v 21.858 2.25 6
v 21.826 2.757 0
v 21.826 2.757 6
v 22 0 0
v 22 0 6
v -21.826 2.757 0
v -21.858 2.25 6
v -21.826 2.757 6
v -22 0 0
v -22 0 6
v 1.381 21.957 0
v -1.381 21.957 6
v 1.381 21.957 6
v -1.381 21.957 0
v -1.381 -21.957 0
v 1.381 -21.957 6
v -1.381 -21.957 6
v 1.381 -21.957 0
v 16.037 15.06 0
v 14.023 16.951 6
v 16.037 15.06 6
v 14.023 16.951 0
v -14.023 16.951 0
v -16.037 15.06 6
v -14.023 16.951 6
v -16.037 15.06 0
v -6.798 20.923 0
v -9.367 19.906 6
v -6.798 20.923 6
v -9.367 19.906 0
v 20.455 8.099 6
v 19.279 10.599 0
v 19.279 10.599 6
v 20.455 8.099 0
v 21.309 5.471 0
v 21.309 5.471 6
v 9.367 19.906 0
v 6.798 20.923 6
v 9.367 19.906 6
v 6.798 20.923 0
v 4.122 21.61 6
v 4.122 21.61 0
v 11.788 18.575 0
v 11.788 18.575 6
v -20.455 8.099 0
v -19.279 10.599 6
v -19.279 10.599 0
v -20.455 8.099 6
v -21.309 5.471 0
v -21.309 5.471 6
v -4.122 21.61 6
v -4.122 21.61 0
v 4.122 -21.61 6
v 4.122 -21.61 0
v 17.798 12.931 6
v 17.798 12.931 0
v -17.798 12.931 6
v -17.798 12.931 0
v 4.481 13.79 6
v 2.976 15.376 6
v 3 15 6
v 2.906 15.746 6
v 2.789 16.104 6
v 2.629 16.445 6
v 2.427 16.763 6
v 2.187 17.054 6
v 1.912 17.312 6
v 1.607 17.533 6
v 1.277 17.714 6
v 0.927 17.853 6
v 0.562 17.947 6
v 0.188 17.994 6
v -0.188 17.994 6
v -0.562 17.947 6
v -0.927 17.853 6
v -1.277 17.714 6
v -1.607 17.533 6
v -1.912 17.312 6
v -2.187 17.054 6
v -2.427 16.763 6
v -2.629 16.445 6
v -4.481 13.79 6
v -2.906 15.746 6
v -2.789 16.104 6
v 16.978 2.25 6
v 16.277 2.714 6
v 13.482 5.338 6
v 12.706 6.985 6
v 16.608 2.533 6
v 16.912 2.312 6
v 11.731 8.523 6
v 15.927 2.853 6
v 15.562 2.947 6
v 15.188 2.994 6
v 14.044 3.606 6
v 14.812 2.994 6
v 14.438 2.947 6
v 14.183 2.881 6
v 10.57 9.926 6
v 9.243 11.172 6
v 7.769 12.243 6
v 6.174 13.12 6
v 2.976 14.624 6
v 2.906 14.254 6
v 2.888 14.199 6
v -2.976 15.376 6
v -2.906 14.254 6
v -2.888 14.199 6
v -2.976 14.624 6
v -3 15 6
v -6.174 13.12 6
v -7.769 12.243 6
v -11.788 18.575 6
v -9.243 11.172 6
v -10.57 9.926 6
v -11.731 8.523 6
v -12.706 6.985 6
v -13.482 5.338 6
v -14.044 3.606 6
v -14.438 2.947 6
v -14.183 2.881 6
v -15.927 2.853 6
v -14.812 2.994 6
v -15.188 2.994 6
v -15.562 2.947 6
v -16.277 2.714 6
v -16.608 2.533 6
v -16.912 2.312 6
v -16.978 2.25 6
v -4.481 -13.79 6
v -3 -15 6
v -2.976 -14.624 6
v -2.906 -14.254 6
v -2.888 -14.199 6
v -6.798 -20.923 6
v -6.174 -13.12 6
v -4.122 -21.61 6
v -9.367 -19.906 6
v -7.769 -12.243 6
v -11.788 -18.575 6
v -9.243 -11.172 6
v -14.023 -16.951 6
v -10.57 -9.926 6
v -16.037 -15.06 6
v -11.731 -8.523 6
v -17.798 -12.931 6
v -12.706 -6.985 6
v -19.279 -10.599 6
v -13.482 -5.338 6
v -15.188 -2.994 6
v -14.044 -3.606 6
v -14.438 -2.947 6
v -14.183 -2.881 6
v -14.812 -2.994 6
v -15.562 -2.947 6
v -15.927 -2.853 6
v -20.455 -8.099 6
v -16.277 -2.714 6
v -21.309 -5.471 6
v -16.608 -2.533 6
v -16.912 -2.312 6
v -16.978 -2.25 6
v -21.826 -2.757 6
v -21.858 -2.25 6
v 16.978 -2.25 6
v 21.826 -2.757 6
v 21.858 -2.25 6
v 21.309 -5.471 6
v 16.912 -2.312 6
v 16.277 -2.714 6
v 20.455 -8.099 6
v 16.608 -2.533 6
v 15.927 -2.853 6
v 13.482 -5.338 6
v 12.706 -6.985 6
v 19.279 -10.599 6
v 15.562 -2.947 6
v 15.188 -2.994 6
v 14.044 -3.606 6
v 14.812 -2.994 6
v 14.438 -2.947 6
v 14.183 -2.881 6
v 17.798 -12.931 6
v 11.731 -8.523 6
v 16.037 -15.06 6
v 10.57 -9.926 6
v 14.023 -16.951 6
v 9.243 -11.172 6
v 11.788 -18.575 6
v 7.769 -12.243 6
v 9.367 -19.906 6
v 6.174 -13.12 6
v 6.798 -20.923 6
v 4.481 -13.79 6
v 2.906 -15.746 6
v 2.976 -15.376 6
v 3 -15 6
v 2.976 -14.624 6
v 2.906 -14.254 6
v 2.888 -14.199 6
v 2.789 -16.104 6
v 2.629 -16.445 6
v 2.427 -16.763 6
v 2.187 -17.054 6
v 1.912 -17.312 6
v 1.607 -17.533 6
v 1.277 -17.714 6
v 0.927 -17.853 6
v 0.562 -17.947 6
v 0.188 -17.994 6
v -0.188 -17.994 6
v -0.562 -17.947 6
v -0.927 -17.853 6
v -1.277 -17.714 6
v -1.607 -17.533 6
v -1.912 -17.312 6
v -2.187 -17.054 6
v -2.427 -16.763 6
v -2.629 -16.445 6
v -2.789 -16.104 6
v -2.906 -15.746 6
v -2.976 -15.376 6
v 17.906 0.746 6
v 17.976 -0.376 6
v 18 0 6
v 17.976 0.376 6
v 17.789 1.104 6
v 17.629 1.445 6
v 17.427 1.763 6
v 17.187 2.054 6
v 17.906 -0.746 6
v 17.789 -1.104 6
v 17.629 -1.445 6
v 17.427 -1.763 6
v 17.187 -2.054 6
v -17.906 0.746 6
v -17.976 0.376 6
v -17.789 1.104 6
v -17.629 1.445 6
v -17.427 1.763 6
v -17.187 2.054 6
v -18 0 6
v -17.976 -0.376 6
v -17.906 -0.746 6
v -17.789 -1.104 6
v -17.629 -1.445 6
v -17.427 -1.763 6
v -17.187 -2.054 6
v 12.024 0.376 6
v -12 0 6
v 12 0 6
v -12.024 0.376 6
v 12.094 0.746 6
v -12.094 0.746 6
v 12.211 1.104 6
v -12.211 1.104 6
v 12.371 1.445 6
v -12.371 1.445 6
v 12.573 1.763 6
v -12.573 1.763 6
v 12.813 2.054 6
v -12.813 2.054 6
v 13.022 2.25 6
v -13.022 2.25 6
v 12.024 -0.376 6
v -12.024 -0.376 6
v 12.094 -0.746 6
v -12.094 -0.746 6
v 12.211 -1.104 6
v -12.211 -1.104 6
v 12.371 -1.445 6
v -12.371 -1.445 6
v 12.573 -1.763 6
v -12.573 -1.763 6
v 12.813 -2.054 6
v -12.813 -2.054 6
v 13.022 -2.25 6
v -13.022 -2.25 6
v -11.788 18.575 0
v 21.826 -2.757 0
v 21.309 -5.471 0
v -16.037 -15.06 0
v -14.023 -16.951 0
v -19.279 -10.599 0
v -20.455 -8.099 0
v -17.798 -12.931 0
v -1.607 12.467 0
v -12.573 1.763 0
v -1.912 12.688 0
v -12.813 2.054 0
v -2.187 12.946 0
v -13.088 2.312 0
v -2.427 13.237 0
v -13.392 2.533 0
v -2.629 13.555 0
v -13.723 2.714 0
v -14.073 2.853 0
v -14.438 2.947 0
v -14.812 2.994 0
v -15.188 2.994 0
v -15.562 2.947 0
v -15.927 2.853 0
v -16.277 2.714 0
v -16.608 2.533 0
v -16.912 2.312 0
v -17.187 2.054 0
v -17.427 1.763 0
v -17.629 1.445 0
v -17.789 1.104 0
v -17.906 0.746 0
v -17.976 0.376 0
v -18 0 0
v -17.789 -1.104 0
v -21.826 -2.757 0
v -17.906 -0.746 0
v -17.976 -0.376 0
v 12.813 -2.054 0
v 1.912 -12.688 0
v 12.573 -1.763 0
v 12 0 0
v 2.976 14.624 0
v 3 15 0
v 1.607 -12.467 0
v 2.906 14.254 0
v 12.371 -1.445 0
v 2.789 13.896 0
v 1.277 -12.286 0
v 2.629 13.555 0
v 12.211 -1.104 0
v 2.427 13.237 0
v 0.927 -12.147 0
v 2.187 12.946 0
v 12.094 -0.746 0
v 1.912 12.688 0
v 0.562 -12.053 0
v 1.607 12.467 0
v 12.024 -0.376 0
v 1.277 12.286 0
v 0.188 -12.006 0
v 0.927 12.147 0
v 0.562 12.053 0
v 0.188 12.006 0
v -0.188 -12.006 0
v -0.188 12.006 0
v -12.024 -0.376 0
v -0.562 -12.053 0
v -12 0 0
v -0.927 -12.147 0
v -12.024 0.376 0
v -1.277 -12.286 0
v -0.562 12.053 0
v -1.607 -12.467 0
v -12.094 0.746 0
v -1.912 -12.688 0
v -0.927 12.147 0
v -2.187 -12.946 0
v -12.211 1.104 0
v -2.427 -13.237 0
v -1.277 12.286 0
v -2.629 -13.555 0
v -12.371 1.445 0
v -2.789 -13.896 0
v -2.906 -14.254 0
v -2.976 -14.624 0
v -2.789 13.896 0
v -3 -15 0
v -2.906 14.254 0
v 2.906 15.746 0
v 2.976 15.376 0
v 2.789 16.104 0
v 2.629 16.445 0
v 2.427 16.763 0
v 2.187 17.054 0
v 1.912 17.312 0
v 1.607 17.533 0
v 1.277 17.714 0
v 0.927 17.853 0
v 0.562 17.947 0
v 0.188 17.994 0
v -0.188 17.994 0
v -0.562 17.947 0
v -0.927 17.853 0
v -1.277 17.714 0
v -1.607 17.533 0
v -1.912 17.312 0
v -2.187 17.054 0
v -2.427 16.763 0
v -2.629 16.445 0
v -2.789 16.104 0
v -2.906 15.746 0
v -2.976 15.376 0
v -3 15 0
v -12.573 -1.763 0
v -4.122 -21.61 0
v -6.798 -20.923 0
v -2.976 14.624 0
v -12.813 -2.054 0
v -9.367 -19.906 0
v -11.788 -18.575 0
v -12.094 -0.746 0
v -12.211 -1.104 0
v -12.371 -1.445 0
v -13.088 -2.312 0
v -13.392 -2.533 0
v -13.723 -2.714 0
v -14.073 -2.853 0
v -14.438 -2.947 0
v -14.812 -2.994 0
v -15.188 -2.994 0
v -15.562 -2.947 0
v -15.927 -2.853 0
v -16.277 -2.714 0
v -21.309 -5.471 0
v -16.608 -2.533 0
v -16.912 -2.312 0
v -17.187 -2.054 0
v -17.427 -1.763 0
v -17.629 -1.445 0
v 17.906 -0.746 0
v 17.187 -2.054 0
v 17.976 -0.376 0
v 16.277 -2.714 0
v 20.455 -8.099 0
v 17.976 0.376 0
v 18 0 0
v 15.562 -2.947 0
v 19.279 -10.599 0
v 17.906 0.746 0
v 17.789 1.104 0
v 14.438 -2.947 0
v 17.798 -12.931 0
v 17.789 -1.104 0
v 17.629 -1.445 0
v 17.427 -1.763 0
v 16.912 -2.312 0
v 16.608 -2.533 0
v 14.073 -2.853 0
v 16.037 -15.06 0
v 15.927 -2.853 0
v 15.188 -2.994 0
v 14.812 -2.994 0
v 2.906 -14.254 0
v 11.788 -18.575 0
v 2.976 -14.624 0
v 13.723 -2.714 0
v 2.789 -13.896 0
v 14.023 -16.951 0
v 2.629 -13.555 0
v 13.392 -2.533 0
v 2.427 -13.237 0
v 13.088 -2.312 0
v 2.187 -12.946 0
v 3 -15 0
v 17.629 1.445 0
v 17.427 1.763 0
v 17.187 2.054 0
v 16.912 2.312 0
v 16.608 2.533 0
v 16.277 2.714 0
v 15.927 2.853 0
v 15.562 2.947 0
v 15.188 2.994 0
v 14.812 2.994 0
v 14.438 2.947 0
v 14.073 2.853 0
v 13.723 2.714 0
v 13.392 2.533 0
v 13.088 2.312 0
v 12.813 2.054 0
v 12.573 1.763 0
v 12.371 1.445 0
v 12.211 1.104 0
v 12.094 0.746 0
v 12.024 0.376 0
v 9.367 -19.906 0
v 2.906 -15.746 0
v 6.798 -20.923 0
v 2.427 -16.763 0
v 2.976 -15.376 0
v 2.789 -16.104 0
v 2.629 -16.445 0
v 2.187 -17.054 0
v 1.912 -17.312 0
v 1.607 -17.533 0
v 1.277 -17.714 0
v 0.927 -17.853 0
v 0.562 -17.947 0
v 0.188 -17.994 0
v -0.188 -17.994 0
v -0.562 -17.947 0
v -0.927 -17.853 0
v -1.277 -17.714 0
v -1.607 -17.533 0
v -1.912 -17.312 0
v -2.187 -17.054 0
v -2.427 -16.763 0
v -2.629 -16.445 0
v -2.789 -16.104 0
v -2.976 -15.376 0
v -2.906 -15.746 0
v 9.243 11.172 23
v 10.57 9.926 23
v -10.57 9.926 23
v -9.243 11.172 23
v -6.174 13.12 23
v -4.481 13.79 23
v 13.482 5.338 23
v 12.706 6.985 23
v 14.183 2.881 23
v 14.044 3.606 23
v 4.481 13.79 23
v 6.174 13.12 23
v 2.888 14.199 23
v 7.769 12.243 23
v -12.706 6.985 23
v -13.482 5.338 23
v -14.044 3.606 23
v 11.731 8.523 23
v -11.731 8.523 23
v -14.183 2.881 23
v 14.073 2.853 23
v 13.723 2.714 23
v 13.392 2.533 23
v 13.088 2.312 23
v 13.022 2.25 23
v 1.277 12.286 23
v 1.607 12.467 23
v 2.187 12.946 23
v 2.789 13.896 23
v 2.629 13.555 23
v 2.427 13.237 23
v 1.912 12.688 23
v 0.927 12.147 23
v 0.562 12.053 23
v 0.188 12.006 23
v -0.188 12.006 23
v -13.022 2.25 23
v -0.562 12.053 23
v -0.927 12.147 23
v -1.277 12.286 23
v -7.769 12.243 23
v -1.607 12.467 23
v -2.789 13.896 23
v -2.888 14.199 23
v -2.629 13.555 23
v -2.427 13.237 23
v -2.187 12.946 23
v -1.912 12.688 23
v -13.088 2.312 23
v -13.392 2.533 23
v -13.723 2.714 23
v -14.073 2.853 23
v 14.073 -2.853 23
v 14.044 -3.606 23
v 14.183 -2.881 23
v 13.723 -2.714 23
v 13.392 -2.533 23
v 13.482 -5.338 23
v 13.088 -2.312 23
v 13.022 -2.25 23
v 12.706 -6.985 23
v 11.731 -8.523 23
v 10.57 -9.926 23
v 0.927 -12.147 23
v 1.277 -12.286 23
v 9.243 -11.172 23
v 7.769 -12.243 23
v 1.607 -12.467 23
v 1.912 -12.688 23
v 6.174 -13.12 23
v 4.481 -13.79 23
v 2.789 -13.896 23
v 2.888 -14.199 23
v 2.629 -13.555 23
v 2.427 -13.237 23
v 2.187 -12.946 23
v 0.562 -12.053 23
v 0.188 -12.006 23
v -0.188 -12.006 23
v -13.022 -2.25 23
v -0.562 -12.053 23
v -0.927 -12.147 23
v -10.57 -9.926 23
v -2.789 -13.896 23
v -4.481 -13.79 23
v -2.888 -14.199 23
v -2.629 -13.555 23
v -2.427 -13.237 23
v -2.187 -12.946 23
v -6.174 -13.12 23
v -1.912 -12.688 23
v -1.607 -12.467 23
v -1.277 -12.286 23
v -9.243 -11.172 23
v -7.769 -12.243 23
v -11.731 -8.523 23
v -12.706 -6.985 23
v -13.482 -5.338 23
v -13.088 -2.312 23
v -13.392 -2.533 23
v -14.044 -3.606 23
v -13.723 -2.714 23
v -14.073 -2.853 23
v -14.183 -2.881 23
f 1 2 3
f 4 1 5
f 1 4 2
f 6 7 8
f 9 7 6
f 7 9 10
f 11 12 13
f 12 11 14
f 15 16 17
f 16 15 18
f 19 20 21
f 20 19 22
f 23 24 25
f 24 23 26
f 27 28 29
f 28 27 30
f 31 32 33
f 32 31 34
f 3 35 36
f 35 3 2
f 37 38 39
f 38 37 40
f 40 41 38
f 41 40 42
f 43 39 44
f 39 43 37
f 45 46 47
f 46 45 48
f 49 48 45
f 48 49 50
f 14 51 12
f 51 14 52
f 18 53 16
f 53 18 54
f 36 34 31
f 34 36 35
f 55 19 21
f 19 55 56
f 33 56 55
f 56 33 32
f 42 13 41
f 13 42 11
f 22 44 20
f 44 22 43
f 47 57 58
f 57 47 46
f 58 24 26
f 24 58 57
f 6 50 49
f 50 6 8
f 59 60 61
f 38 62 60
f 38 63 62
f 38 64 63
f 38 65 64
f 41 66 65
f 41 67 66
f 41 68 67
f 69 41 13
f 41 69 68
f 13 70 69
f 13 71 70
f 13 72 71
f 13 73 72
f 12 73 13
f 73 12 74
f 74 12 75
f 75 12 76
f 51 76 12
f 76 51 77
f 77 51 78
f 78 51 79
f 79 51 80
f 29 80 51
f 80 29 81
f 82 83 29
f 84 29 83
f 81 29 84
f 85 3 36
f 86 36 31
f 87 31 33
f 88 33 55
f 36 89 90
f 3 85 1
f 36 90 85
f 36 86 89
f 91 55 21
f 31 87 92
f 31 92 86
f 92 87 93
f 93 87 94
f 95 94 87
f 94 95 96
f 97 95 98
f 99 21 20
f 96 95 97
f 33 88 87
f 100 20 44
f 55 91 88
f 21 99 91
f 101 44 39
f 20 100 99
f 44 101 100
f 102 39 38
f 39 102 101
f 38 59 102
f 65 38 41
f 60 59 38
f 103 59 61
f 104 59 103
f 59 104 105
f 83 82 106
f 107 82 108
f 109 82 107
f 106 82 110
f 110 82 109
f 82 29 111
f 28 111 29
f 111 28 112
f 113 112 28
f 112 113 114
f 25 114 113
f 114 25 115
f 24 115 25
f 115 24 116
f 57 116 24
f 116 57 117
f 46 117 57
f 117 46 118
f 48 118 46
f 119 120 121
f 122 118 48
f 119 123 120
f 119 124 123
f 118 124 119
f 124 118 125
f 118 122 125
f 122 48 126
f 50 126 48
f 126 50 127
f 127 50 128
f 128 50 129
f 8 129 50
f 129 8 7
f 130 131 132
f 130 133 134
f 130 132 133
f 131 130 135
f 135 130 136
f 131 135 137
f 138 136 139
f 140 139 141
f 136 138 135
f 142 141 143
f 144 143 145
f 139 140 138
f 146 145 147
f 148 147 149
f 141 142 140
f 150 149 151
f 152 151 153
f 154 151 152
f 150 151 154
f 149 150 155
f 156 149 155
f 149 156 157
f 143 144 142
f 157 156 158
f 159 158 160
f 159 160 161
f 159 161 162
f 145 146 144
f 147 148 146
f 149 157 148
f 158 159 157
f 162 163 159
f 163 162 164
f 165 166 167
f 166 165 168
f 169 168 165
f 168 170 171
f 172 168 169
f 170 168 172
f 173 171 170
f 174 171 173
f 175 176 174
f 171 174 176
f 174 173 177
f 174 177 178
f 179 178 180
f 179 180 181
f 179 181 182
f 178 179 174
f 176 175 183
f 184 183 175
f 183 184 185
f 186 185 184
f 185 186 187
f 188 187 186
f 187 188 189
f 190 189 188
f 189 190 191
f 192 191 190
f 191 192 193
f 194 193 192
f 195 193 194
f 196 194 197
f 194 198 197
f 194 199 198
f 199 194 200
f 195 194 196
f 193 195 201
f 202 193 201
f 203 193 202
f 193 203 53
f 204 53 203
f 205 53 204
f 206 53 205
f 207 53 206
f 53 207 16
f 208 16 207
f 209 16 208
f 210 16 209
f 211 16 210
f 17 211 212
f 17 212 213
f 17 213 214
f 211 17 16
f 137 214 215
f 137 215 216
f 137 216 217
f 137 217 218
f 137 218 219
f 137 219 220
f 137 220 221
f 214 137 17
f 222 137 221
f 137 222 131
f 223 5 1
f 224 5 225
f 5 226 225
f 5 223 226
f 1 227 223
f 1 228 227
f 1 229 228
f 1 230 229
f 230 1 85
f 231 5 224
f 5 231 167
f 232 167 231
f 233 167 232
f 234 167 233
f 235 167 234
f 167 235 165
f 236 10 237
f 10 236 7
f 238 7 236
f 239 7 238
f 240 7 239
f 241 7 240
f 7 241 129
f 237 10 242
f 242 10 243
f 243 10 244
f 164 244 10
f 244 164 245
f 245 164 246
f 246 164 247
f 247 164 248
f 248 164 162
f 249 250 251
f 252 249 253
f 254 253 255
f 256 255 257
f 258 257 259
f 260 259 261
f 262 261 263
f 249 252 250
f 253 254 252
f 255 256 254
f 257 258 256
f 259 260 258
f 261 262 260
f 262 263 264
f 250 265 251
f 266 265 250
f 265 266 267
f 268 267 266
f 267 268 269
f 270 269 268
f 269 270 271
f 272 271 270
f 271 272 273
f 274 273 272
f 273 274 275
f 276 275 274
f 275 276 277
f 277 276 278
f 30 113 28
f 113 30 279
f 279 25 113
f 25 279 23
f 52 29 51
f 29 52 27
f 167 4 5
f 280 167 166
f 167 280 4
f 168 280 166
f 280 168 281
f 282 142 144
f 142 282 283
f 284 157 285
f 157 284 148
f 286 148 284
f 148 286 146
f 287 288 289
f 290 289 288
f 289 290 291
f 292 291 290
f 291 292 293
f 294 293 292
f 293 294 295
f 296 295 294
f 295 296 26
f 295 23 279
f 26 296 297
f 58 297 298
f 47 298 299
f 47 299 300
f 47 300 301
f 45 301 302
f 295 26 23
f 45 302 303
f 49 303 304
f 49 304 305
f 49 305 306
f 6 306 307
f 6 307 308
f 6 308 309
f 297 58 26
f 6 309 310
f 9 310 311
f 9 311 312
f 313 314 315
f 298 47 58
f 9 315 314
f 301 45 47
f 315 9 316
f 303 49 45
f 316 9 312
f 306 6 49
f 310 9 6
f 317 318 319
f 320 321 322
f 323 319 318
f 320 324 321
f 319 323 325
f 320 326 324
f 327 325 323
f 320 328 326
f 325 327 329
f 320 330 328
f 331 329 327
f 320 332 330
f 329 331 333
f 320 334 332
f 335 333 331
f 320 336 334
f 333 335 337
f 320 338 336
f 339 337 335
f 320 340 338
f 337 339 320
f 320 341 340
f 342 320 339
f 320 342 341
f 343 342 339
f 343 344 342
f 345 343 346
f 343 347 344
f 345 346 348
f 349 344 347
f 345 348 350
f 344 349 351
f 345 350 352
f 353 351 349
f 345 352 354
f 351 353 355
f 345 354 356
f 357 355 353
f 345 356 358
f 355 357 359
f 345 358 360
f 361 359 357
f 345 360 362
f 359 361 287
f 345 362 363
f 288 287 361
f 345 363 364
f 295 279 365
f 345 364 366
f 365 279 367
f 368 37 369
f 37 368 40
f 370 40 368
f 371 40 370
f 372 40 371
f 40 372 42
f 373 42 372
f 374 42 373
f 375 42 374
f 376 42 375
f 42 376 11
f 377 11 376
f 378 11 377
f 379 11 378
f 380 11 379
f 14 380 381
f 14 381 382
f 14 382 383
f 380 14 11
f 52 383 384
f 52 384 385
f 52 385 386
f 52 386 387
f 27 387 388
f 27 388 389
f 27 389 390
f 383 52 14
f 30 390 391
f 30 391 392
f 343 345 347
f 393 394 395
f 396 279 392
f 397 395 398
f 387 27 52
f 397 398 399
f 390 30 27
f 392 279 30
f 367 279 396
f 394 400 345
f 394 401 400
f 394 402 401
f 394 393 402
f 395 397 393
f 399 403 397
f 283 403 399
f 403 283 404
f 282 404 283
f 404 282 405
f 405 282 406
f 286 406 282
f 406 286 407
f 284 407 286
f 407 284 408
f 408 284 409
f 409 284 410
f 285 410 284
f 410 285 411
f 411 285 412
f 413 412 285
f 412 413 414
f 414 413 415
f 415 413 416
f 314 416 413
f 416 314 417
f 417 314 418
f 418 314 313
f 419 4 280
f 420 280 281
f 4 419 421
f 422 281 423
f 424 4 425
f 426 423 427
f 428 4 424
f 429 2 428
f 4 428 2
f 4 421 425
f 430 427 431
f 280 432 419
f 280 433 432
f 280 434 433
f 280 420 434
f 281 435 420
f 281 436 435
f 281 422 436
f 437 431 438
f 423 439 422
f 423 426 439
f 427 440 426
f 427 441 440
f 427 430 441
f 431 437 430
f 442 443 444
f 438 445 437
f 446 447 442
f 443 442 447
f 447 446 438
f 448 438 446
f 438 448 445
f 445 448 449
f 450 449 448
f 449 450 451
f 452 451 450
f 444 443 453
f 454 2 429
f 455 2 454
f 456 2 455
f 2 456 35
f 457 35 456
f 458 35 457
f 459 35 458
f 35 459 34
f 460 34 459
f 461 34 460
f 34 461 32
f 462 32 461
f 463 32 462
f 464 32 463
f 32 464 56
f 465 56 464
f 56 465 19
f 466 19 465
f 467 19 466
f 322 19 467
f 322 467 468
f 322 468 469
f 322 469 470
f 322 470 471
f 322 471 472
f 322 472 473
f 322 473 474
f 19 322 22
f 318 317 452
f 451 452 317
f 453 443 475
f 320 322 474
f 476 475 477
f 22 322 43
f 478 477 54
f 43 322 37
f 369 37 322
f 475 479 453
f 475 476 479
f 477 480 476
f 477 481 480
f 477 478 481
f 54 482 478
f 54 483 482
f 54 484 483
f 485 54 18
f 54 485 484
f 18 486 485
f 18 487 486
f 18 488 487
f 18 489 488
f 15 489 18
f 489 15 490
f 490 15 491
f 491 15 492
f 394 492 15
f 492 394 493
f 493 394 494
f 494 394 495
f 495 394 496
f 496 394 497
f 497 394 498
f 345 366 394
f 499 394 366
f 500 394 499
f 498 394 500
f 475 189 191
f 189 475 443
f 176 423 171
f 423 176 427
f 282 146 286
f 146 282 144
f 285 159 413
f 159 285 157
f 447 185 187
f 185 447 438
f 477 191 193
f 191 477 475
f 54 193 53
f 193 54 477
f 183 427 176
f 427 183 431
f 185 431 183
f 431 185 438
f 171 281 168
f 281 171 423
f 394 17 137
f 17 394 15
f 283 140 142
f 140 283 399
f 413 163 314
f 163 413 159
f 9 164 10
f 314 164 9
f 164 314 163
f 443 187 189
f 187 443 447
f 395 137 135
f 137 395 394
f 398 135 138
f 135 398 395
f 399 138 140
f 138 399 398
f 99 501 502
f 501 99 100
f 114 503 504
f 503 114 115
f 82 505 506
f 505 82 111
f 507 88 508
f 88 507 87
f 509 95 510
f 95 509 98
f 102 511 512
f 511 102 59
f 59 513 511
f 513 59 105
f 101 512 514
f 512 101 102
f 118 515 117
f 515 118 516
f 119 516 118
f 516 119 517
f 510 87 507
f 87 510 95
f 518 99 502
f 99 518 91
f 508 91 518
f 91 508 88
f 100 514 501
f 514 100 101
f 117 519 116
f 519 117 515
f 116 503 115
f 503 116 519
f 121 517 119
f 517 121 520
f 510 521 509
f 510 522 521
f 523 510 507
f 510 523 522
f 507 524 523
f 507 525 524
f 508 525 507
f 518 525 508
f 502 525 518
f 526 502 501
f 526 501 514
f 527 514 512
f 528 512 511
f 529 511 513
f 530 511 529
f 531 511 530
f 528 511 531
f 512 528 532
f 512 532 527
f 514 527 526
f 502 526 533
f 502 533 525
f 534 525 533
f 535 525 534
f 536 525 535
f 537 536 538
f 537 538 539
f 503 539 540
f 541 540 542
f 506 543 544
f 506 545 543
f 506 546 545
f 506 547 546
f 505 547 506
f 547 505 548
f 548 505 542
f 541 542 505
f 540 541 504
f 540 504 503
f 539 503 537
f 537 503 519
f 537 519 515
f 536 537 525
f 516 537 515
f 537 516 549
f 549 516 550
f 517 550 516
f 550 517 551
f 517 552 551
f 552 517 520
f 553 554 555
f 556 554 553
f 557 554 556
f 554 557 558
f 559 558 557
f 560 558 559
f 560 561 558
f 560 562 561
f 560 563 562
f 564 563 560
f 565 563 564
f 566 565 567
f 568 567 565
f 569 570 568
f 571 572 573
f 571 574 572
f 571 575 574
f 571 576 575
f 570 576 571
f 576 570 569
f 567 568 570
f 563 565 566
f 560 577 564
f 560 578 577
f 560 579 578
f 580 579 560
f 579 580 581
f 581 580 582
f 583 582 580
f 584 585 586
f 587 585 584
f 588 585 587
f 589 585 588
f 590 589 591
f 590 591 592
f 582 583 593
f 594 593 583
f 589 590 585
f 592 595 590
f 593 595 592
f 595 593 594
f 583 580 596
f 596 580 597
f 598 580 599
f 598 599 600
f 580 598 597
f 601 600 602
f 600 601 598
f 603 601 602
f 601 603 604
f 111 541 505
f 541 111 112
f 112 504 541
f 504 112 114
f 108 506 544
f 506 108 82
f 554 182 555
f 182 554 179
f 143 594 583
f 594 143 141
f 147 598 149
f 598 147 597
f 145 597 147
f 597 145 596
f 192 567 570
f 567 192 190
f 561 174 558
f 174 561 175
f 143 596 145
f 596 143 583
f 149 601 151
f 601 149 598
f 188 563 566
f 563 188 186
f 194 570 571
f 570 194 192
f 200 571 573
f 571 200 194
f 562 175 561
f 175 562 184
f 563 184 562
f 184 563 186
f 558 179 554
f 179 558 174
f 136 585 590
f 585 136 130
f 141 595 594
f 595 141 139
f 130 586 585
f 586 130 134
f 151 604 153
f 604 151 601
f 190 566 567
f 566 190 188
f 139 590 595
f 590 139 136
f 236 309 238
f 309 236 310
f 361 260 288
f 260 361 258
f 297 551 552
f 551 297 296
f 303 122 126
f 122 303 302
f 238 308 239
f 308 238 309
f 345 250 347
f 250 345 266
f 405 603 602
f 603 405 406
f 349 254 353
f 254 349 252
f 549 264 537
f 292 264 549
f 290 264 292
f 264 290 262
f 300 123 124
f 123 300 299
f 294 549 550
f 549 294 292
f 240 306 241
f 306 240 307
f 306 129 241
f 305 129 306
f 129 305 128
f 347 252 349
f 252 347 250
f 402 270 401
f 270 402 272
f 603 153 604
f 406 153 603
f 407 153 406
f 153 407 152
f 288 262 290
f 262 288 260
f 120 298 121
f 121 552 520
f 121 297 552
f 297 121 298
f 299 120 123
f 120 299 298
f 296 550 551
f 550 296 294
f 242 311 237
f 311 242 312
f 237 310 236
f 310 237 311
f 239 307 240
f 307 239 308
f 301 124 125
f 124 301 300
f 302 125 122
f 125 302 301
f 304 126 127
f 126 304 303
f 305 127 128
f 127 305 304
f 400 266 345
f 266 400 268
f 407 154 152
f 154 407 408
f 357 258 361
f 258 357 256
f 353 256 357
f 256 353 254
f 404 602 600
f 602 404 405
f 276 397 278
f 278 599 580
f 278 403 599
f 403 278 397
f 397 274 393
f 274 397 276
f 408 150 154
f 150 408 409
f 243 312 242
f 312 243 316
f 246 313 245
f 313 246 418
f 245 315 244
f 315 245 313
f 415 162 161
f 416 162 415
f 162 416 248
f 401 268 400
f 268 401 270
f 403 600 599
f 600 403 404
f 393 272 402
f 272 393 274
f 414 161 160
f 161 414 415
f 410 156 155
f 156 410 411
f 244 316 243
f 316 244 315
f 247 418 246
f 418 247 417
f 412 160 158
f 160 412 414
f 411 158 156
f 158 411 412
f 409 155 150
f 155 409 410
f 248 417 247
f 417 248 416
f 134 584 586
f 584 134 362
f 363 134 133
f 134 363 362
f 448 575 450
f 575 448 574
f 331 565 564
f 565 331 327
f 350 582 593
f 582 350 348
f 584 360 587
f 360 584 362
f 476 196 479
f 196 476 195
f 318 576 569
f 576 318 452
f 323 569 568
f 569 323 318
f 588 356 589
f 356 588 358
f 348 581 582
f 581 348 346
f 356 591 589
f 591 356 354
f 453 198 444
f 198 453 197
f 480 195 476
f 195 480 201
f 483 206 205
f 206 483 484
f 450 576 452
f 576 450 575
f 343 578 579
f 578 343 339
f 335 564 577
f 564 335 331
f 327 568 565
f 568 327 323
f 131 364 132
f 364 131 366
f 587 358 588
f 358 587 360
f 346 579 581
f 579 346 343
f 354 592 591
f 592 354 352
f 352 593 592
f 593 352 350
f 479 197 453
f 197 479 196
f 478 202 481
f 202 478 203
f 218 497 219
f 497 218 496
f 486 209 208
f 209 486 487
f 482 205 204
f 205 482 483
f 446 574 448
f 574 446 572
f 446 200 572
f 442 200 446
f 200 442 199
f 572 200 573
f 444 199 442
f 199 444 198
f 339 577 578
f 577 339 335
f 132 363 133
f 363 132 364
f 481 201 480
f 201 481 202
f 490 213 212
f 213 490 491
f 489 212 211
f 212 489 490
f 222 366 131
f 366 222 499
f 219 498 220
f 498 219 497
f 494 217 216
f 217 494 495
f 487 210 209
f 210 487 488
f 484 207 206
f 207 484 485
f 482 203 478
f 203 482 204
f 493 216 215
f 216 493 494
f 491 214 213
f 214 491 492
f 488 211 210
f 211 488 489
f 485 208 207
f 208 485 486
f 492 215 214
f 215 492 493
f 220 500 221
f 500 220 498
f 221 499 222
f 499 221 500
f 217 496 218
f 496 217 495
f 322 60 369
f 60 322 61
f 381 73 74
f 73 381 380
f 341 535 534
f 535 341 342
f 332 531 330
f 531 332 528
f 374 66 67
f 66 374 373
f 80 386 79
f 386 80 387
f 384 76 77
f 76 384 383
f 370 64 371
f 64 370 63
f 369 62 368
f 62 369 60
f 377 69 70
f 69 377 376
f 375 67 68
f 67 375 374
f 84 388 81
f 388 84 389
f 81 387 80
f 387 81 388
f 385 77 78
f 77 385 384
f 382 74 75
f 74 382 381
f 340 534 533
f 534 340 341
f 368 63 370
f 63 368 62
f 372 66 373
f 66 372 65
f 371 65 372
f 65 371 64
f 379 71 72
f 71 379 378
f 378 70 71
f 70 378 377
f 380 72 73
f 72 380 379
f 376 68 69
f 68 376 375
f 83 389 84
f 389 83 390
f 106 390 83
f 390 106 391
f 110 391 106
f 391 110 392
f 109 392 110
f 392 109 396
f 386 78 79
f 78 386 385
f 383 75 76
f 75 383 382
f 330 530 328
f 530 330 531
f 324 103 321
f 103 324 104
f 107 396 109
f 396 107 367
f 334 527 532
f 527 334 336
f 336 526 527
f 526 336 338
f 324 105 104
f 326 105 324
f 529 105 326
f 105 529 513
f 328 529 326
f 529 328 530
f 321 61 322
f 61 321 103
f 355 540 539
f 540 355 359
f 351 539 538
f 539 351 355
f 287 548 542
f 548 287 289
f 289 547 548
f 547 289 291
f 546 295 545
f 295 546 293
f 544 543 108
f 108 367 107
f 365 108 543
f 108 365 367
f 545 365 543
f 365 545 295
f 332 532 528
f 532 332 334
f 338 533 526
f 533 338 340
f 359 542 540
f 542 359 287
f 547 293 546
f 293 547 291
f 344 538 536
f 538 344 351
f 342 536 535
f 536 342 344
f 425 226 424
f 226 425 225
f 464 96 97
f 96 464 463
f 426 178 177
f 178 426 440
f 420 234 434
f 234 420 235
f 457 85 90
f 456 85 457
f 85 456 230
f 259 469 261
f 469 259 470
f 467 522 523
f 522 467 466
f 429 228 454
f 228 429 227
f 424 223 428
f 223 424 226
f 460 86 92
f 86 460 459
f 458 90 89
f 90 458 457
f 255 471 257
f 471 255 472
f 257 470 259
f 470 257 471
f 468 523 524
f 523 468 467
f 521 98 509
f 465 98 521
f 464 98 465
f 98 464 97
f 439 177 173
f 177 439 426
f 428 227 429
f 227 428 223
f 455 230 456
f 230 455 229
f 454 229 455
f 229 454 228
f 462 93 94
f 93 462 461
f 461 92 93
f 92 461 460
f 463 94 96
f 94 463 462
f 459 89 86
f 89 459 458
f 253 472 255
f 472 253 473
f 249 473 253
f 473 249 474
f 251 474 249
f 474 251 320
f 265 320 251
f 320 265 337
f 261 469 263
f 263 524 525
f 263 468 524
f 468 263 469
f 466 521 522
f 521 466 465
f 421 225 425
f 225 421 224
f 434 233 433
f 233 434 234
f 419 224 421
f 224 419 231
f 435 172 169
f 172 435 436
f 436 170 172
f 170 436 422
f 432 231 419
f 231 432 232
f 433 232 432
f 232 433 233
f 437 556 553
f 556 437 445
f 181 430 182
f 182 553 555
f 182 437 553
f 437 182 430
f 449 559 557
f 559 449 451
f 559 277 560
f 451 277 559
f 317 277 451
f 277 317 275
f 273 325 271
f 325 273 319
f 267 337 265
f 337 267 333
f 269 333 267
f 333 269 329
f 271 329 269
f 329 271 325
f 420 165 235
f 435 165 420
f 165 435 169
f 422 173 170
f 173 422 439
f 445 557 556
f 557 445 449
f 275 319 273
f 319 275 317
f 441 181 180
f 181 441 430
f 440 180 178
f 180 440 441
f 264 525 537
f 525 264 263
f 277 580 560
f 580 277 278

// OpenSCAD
$fn = 50;


difference() {
	union() {
		cylinder(h = 6, r = 22.0000000000);
		translate(v = [0, 0, 3.0000000000]) {
			cylinder(h = 20, r = 14.5000000000);
		}
	}
	union() {
		translate(v = [-15.0000000000, 0.0000000000, -50.0000000000]) {
			cylinder(h = 100, r = 3.0000000000);
		}
		translate(v = [0.0000000000, -15.0000000000, -50.0000000000]) {
			cylinder(h = 100, r = 3.0000000000);
		}
		translate(v = [0.0000000000, 15.0000000000, -50.0000000000]) {
			cylinder(h = 100, r = 3.0000000000);
		}
		translate(v = [15.0000000000, 0.0000000000, -50.0000000000]) {
			cylinder(h = 100, r = 3.0000000000);
		}
		translate(v = [-27.0000000000, -2.2500000000, 6]) {
			cube(size = [54, 4.5000000000, 20]);
		}
	}
}
